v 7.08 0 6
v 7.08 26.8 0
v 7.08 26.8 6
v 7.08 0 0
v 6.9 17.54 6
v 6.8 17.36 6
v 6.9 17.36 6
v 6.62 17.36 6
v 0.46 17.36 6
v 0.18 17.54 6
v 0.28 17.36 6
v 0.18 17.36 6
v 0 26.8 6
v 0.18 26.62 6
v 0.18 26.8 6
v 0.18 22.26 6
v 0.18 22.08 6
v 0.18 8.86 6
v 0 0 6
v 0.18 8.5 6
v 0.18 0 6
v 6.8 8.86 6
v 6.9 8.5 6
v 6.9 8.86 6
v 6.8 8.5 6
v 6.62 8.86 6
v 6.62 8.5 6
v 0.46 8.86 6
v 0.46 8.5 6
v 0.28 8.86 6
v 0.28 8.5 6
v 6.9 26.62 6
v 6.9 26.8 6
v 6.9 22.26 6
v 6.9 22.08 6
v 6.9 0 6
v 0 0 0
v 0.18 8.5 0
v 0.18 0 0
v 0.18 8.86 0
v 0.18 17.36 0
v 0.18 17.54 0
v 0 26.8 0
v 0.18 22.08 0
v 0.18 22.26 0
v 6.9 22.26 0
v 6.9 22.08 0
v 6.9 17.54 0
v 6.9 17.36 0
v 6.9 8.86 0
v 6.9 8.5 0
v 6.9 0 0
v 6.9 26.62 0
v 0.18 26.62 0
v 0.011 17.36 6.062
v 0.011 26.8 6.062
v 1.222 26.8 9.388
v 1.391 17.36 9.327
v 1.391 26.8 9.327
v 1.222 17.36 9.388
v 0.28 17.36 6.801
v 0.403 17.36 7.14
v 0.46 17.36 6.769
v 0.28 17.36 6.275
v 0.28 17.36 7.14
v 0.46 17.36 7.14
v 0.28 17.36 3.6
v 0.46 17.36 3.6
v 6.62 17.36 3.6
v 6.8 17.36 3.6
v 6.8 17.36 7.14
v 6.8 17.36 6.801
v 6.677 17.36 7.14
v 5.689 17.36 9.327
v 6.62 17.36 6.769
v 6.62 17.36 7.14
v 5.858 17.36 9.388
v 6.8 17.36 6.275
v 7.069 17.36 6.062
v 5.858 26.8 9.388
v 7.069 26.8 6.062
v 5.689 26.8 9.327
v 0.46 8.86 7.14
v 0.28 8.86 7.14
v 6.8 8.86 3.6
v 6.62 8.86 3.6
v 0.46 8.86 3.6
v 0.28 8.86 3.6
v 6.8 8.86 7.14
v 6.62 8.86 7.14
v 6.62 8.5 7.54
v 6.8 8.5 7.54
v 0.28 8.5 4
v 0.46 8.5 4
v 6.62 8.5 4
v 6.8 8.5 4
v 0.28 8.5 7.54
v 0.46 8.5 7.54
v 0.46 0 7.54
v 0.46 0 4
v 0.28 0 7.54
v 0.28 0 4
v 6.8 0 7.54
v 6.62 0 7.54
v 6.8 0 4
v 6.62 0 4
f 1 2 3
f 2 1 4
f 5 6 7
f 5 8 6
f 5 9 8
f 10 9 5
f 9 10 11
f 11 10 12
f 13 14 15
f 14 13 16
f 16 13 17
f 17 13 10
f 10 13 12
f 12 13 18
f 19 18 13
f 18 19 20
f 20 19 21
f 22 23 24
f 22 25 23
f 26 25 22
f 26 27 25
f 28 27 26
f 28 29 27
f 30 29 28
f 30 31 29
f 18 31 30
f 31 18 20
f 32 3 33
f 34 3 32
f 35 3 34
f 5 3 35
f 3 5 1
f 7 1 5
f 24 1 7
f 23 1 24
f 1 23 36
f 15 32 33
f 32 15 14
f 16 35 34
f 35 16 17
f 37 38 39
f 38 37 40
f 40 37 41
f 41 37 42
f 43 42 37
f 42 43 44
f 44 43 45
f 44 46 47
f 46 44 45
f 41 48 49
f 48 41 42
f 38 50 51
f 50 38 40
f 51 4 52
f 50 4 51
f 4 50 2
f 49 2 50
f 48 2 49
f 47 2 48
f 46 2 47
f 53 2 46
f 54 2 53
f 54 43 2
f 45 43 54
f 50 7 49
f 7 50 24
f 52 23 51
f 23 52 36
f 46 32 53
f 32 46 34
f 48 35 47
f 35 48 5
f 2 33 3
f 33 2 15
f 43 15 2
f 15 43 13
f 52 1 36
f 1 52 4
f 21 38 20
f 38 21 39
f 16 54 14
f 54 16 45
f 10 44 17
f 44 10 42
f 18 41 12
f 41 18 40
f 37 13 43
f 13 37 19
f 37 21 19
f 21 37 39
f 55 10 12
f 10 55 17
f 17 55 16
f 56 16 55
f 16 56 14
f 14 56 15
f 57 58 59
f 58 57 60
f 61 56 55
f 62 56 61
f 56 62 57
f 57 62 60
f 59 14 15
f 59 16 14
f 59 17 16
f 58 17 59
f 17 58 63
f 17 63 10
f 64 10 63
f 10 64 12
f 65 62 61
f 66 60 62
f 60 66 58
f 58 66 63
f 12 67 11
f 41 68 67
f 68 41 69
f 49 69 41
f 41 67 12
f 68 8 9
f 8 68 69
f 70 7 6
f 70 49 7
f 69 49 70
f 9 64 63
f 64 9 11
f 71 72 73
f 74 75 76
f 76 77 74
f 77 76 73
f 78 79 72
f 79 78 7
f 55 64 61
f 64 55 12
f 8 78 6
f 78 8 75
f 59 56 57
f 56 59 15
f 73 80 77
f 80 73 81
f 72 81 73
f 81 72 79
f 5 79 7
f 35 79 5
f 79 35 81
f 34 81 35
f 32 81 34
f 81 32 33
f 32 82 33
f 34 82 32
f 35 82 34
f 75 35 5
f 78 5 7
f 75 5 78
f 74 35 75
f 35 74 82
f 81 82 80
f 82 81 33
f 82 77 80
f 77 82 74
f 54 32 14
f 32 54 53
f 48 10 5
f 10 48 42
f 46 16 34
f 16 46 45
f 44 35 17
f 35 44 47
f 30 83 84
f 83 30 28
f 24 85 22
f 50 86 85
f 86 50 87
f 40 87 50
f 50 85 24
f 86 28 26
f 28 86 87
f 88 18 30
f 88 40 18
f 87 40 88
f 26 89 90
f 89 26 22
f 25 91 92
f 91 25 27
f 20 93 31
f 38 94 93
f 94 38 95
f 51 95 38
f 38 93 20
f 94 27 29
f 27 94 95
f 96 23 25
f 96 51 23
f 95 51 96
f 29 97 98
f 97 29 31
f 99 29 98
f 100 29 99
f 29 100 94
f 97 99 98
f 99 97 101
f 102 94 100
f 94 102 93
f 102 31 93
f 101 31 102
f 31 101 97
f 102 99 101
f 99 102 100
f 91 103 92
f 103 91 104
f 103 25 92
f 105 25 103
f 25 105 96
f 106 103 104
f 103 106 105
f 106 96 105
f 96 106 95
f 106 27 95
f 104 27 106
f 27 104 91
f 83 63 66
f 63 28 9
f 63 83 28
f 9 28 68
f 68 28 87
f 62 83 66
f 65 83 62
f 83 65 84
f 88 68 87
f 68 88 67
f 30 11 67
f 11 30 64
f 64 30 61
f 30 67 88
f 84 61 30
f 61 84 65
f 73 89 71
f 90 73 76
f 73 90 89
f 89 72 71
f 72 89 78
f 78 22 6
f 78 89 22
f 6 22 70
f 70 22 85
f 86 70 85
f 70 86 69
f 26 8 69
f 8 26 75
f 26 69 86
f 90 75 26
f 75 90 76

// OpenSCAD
module washing_machine_cabinet() {
    szafa_h = 26.8;
    WASHING_MACHINE_HALF_WIDTH = 3.;
    WASHING_MACHINE_HEIGHT = 8.5;
    washing_machine_depth = 2. * WASHING_MACHINE_HALF_WIDTH;
    PLANK_THICKNESS = 0.18;
    three_planks = 3. * PLANK_THICKNESS;
    cabinet_width = washing_machine_depth + 2. * three_planks;
    dryer_plank = 2. * PLANK_THICKNESS;
    h = 2. * WASHING_MACHINE_HEIGHT + dryer_plank;

    // right side
    translate([cabinet_width - PLANK_THICKNESS, 0., 0]) {
        cube([PLANK_THICKNESS, szafa_h, washing_machine_depth]);
    }
    // left side
    translate([0., 0., 0]) {
        cube([PLANK_THICKNESS, szafa_h, washing_machine_depth]);
    }
    // top left door
    translate([PLANK_THICKNESS, h, washing_machine_depth]) {
        rotate([0, -70, 0]) {
            cube([cabinet_width / 2, szafa_h - h, PLANK_THICKNESS]);
        }
    }
    // top right door
    translate([cabinet_width - PLANK_THICKNESS, h, washing_machine_depth]) {
        mirror([1, 0, 0]) {
            rotate([0, -70, 0]) {
                cube([cabinet_width / 2, szafa_h - h, PLANK_THICKNESS]);
            }
        }
    }
    // roof
    translate([0, szafa_h - PLANK_THICKNESS, 0]) {
        cube([cabinet_width, PLANK_THICKNESS, washing_machine_depth]);
    }
    // stash shelf
    translate([0, h, 0]) {
        cube([cabinet_width, PLANK_THICKNESS, washing_machine_depth]);
    }
    // stash shelf
    translate([0, h + (szafa_h - h) / 2, 0]) {
        cube([cabinet_width, PLANK_THICKNESS, washing_machine_depth]);
    }
    // dryer shelf
    translate([0, WASHING_MACHINE_HEIGHT, 0]) {
        cube([cabinet_width, dryer_plank, washing_machine_depth]);
    }
    // sliding doors
    door_distance = PLANK_THICKNESS + 0.1;
    bottom_slide = 2 * washing_machine_depth / 3;
    // bottom left door
    translate([door_distance, 0, bottom_slide]) {
        cube([PLANK_THICKNESS, WASHING_MACHINE_HEIGHT, cabinet_width / 2]);
    }
    // bottom right door
    translate([cabinet_width - door_distance, 0, bottom_slide]) {
        mirror([1, 0, 0]) {
            cube([PLANK_THICKNESS, WASHING_MACHINE_HEIGHT, cabinet_width / 2]);
        }
    }
    middle_slide = 3 * washing_machine_depth / 5;
    // middle left door
    translate([door_distance, WASHING_MACHINE_HEIGHT + dryer_plank, middle_slide]) {
        cube([PLANK_THICKNESS, WASHING_MACHINE_HEIGHT, cabinet_width / 2]);
    }
    // middle right door
    translate([cabinet_width - door_distance, WASHING_MACHINE_HEIGHT + dryer_plank, middle_slide]) {
        mirror([1, 0, 0]) {
            cube([PLANK_THICKNESS, WASHING_MACHINE_HEIGHT, cabinet_width / 2]);
        }
    }
}

washing_machine_cabinet();
